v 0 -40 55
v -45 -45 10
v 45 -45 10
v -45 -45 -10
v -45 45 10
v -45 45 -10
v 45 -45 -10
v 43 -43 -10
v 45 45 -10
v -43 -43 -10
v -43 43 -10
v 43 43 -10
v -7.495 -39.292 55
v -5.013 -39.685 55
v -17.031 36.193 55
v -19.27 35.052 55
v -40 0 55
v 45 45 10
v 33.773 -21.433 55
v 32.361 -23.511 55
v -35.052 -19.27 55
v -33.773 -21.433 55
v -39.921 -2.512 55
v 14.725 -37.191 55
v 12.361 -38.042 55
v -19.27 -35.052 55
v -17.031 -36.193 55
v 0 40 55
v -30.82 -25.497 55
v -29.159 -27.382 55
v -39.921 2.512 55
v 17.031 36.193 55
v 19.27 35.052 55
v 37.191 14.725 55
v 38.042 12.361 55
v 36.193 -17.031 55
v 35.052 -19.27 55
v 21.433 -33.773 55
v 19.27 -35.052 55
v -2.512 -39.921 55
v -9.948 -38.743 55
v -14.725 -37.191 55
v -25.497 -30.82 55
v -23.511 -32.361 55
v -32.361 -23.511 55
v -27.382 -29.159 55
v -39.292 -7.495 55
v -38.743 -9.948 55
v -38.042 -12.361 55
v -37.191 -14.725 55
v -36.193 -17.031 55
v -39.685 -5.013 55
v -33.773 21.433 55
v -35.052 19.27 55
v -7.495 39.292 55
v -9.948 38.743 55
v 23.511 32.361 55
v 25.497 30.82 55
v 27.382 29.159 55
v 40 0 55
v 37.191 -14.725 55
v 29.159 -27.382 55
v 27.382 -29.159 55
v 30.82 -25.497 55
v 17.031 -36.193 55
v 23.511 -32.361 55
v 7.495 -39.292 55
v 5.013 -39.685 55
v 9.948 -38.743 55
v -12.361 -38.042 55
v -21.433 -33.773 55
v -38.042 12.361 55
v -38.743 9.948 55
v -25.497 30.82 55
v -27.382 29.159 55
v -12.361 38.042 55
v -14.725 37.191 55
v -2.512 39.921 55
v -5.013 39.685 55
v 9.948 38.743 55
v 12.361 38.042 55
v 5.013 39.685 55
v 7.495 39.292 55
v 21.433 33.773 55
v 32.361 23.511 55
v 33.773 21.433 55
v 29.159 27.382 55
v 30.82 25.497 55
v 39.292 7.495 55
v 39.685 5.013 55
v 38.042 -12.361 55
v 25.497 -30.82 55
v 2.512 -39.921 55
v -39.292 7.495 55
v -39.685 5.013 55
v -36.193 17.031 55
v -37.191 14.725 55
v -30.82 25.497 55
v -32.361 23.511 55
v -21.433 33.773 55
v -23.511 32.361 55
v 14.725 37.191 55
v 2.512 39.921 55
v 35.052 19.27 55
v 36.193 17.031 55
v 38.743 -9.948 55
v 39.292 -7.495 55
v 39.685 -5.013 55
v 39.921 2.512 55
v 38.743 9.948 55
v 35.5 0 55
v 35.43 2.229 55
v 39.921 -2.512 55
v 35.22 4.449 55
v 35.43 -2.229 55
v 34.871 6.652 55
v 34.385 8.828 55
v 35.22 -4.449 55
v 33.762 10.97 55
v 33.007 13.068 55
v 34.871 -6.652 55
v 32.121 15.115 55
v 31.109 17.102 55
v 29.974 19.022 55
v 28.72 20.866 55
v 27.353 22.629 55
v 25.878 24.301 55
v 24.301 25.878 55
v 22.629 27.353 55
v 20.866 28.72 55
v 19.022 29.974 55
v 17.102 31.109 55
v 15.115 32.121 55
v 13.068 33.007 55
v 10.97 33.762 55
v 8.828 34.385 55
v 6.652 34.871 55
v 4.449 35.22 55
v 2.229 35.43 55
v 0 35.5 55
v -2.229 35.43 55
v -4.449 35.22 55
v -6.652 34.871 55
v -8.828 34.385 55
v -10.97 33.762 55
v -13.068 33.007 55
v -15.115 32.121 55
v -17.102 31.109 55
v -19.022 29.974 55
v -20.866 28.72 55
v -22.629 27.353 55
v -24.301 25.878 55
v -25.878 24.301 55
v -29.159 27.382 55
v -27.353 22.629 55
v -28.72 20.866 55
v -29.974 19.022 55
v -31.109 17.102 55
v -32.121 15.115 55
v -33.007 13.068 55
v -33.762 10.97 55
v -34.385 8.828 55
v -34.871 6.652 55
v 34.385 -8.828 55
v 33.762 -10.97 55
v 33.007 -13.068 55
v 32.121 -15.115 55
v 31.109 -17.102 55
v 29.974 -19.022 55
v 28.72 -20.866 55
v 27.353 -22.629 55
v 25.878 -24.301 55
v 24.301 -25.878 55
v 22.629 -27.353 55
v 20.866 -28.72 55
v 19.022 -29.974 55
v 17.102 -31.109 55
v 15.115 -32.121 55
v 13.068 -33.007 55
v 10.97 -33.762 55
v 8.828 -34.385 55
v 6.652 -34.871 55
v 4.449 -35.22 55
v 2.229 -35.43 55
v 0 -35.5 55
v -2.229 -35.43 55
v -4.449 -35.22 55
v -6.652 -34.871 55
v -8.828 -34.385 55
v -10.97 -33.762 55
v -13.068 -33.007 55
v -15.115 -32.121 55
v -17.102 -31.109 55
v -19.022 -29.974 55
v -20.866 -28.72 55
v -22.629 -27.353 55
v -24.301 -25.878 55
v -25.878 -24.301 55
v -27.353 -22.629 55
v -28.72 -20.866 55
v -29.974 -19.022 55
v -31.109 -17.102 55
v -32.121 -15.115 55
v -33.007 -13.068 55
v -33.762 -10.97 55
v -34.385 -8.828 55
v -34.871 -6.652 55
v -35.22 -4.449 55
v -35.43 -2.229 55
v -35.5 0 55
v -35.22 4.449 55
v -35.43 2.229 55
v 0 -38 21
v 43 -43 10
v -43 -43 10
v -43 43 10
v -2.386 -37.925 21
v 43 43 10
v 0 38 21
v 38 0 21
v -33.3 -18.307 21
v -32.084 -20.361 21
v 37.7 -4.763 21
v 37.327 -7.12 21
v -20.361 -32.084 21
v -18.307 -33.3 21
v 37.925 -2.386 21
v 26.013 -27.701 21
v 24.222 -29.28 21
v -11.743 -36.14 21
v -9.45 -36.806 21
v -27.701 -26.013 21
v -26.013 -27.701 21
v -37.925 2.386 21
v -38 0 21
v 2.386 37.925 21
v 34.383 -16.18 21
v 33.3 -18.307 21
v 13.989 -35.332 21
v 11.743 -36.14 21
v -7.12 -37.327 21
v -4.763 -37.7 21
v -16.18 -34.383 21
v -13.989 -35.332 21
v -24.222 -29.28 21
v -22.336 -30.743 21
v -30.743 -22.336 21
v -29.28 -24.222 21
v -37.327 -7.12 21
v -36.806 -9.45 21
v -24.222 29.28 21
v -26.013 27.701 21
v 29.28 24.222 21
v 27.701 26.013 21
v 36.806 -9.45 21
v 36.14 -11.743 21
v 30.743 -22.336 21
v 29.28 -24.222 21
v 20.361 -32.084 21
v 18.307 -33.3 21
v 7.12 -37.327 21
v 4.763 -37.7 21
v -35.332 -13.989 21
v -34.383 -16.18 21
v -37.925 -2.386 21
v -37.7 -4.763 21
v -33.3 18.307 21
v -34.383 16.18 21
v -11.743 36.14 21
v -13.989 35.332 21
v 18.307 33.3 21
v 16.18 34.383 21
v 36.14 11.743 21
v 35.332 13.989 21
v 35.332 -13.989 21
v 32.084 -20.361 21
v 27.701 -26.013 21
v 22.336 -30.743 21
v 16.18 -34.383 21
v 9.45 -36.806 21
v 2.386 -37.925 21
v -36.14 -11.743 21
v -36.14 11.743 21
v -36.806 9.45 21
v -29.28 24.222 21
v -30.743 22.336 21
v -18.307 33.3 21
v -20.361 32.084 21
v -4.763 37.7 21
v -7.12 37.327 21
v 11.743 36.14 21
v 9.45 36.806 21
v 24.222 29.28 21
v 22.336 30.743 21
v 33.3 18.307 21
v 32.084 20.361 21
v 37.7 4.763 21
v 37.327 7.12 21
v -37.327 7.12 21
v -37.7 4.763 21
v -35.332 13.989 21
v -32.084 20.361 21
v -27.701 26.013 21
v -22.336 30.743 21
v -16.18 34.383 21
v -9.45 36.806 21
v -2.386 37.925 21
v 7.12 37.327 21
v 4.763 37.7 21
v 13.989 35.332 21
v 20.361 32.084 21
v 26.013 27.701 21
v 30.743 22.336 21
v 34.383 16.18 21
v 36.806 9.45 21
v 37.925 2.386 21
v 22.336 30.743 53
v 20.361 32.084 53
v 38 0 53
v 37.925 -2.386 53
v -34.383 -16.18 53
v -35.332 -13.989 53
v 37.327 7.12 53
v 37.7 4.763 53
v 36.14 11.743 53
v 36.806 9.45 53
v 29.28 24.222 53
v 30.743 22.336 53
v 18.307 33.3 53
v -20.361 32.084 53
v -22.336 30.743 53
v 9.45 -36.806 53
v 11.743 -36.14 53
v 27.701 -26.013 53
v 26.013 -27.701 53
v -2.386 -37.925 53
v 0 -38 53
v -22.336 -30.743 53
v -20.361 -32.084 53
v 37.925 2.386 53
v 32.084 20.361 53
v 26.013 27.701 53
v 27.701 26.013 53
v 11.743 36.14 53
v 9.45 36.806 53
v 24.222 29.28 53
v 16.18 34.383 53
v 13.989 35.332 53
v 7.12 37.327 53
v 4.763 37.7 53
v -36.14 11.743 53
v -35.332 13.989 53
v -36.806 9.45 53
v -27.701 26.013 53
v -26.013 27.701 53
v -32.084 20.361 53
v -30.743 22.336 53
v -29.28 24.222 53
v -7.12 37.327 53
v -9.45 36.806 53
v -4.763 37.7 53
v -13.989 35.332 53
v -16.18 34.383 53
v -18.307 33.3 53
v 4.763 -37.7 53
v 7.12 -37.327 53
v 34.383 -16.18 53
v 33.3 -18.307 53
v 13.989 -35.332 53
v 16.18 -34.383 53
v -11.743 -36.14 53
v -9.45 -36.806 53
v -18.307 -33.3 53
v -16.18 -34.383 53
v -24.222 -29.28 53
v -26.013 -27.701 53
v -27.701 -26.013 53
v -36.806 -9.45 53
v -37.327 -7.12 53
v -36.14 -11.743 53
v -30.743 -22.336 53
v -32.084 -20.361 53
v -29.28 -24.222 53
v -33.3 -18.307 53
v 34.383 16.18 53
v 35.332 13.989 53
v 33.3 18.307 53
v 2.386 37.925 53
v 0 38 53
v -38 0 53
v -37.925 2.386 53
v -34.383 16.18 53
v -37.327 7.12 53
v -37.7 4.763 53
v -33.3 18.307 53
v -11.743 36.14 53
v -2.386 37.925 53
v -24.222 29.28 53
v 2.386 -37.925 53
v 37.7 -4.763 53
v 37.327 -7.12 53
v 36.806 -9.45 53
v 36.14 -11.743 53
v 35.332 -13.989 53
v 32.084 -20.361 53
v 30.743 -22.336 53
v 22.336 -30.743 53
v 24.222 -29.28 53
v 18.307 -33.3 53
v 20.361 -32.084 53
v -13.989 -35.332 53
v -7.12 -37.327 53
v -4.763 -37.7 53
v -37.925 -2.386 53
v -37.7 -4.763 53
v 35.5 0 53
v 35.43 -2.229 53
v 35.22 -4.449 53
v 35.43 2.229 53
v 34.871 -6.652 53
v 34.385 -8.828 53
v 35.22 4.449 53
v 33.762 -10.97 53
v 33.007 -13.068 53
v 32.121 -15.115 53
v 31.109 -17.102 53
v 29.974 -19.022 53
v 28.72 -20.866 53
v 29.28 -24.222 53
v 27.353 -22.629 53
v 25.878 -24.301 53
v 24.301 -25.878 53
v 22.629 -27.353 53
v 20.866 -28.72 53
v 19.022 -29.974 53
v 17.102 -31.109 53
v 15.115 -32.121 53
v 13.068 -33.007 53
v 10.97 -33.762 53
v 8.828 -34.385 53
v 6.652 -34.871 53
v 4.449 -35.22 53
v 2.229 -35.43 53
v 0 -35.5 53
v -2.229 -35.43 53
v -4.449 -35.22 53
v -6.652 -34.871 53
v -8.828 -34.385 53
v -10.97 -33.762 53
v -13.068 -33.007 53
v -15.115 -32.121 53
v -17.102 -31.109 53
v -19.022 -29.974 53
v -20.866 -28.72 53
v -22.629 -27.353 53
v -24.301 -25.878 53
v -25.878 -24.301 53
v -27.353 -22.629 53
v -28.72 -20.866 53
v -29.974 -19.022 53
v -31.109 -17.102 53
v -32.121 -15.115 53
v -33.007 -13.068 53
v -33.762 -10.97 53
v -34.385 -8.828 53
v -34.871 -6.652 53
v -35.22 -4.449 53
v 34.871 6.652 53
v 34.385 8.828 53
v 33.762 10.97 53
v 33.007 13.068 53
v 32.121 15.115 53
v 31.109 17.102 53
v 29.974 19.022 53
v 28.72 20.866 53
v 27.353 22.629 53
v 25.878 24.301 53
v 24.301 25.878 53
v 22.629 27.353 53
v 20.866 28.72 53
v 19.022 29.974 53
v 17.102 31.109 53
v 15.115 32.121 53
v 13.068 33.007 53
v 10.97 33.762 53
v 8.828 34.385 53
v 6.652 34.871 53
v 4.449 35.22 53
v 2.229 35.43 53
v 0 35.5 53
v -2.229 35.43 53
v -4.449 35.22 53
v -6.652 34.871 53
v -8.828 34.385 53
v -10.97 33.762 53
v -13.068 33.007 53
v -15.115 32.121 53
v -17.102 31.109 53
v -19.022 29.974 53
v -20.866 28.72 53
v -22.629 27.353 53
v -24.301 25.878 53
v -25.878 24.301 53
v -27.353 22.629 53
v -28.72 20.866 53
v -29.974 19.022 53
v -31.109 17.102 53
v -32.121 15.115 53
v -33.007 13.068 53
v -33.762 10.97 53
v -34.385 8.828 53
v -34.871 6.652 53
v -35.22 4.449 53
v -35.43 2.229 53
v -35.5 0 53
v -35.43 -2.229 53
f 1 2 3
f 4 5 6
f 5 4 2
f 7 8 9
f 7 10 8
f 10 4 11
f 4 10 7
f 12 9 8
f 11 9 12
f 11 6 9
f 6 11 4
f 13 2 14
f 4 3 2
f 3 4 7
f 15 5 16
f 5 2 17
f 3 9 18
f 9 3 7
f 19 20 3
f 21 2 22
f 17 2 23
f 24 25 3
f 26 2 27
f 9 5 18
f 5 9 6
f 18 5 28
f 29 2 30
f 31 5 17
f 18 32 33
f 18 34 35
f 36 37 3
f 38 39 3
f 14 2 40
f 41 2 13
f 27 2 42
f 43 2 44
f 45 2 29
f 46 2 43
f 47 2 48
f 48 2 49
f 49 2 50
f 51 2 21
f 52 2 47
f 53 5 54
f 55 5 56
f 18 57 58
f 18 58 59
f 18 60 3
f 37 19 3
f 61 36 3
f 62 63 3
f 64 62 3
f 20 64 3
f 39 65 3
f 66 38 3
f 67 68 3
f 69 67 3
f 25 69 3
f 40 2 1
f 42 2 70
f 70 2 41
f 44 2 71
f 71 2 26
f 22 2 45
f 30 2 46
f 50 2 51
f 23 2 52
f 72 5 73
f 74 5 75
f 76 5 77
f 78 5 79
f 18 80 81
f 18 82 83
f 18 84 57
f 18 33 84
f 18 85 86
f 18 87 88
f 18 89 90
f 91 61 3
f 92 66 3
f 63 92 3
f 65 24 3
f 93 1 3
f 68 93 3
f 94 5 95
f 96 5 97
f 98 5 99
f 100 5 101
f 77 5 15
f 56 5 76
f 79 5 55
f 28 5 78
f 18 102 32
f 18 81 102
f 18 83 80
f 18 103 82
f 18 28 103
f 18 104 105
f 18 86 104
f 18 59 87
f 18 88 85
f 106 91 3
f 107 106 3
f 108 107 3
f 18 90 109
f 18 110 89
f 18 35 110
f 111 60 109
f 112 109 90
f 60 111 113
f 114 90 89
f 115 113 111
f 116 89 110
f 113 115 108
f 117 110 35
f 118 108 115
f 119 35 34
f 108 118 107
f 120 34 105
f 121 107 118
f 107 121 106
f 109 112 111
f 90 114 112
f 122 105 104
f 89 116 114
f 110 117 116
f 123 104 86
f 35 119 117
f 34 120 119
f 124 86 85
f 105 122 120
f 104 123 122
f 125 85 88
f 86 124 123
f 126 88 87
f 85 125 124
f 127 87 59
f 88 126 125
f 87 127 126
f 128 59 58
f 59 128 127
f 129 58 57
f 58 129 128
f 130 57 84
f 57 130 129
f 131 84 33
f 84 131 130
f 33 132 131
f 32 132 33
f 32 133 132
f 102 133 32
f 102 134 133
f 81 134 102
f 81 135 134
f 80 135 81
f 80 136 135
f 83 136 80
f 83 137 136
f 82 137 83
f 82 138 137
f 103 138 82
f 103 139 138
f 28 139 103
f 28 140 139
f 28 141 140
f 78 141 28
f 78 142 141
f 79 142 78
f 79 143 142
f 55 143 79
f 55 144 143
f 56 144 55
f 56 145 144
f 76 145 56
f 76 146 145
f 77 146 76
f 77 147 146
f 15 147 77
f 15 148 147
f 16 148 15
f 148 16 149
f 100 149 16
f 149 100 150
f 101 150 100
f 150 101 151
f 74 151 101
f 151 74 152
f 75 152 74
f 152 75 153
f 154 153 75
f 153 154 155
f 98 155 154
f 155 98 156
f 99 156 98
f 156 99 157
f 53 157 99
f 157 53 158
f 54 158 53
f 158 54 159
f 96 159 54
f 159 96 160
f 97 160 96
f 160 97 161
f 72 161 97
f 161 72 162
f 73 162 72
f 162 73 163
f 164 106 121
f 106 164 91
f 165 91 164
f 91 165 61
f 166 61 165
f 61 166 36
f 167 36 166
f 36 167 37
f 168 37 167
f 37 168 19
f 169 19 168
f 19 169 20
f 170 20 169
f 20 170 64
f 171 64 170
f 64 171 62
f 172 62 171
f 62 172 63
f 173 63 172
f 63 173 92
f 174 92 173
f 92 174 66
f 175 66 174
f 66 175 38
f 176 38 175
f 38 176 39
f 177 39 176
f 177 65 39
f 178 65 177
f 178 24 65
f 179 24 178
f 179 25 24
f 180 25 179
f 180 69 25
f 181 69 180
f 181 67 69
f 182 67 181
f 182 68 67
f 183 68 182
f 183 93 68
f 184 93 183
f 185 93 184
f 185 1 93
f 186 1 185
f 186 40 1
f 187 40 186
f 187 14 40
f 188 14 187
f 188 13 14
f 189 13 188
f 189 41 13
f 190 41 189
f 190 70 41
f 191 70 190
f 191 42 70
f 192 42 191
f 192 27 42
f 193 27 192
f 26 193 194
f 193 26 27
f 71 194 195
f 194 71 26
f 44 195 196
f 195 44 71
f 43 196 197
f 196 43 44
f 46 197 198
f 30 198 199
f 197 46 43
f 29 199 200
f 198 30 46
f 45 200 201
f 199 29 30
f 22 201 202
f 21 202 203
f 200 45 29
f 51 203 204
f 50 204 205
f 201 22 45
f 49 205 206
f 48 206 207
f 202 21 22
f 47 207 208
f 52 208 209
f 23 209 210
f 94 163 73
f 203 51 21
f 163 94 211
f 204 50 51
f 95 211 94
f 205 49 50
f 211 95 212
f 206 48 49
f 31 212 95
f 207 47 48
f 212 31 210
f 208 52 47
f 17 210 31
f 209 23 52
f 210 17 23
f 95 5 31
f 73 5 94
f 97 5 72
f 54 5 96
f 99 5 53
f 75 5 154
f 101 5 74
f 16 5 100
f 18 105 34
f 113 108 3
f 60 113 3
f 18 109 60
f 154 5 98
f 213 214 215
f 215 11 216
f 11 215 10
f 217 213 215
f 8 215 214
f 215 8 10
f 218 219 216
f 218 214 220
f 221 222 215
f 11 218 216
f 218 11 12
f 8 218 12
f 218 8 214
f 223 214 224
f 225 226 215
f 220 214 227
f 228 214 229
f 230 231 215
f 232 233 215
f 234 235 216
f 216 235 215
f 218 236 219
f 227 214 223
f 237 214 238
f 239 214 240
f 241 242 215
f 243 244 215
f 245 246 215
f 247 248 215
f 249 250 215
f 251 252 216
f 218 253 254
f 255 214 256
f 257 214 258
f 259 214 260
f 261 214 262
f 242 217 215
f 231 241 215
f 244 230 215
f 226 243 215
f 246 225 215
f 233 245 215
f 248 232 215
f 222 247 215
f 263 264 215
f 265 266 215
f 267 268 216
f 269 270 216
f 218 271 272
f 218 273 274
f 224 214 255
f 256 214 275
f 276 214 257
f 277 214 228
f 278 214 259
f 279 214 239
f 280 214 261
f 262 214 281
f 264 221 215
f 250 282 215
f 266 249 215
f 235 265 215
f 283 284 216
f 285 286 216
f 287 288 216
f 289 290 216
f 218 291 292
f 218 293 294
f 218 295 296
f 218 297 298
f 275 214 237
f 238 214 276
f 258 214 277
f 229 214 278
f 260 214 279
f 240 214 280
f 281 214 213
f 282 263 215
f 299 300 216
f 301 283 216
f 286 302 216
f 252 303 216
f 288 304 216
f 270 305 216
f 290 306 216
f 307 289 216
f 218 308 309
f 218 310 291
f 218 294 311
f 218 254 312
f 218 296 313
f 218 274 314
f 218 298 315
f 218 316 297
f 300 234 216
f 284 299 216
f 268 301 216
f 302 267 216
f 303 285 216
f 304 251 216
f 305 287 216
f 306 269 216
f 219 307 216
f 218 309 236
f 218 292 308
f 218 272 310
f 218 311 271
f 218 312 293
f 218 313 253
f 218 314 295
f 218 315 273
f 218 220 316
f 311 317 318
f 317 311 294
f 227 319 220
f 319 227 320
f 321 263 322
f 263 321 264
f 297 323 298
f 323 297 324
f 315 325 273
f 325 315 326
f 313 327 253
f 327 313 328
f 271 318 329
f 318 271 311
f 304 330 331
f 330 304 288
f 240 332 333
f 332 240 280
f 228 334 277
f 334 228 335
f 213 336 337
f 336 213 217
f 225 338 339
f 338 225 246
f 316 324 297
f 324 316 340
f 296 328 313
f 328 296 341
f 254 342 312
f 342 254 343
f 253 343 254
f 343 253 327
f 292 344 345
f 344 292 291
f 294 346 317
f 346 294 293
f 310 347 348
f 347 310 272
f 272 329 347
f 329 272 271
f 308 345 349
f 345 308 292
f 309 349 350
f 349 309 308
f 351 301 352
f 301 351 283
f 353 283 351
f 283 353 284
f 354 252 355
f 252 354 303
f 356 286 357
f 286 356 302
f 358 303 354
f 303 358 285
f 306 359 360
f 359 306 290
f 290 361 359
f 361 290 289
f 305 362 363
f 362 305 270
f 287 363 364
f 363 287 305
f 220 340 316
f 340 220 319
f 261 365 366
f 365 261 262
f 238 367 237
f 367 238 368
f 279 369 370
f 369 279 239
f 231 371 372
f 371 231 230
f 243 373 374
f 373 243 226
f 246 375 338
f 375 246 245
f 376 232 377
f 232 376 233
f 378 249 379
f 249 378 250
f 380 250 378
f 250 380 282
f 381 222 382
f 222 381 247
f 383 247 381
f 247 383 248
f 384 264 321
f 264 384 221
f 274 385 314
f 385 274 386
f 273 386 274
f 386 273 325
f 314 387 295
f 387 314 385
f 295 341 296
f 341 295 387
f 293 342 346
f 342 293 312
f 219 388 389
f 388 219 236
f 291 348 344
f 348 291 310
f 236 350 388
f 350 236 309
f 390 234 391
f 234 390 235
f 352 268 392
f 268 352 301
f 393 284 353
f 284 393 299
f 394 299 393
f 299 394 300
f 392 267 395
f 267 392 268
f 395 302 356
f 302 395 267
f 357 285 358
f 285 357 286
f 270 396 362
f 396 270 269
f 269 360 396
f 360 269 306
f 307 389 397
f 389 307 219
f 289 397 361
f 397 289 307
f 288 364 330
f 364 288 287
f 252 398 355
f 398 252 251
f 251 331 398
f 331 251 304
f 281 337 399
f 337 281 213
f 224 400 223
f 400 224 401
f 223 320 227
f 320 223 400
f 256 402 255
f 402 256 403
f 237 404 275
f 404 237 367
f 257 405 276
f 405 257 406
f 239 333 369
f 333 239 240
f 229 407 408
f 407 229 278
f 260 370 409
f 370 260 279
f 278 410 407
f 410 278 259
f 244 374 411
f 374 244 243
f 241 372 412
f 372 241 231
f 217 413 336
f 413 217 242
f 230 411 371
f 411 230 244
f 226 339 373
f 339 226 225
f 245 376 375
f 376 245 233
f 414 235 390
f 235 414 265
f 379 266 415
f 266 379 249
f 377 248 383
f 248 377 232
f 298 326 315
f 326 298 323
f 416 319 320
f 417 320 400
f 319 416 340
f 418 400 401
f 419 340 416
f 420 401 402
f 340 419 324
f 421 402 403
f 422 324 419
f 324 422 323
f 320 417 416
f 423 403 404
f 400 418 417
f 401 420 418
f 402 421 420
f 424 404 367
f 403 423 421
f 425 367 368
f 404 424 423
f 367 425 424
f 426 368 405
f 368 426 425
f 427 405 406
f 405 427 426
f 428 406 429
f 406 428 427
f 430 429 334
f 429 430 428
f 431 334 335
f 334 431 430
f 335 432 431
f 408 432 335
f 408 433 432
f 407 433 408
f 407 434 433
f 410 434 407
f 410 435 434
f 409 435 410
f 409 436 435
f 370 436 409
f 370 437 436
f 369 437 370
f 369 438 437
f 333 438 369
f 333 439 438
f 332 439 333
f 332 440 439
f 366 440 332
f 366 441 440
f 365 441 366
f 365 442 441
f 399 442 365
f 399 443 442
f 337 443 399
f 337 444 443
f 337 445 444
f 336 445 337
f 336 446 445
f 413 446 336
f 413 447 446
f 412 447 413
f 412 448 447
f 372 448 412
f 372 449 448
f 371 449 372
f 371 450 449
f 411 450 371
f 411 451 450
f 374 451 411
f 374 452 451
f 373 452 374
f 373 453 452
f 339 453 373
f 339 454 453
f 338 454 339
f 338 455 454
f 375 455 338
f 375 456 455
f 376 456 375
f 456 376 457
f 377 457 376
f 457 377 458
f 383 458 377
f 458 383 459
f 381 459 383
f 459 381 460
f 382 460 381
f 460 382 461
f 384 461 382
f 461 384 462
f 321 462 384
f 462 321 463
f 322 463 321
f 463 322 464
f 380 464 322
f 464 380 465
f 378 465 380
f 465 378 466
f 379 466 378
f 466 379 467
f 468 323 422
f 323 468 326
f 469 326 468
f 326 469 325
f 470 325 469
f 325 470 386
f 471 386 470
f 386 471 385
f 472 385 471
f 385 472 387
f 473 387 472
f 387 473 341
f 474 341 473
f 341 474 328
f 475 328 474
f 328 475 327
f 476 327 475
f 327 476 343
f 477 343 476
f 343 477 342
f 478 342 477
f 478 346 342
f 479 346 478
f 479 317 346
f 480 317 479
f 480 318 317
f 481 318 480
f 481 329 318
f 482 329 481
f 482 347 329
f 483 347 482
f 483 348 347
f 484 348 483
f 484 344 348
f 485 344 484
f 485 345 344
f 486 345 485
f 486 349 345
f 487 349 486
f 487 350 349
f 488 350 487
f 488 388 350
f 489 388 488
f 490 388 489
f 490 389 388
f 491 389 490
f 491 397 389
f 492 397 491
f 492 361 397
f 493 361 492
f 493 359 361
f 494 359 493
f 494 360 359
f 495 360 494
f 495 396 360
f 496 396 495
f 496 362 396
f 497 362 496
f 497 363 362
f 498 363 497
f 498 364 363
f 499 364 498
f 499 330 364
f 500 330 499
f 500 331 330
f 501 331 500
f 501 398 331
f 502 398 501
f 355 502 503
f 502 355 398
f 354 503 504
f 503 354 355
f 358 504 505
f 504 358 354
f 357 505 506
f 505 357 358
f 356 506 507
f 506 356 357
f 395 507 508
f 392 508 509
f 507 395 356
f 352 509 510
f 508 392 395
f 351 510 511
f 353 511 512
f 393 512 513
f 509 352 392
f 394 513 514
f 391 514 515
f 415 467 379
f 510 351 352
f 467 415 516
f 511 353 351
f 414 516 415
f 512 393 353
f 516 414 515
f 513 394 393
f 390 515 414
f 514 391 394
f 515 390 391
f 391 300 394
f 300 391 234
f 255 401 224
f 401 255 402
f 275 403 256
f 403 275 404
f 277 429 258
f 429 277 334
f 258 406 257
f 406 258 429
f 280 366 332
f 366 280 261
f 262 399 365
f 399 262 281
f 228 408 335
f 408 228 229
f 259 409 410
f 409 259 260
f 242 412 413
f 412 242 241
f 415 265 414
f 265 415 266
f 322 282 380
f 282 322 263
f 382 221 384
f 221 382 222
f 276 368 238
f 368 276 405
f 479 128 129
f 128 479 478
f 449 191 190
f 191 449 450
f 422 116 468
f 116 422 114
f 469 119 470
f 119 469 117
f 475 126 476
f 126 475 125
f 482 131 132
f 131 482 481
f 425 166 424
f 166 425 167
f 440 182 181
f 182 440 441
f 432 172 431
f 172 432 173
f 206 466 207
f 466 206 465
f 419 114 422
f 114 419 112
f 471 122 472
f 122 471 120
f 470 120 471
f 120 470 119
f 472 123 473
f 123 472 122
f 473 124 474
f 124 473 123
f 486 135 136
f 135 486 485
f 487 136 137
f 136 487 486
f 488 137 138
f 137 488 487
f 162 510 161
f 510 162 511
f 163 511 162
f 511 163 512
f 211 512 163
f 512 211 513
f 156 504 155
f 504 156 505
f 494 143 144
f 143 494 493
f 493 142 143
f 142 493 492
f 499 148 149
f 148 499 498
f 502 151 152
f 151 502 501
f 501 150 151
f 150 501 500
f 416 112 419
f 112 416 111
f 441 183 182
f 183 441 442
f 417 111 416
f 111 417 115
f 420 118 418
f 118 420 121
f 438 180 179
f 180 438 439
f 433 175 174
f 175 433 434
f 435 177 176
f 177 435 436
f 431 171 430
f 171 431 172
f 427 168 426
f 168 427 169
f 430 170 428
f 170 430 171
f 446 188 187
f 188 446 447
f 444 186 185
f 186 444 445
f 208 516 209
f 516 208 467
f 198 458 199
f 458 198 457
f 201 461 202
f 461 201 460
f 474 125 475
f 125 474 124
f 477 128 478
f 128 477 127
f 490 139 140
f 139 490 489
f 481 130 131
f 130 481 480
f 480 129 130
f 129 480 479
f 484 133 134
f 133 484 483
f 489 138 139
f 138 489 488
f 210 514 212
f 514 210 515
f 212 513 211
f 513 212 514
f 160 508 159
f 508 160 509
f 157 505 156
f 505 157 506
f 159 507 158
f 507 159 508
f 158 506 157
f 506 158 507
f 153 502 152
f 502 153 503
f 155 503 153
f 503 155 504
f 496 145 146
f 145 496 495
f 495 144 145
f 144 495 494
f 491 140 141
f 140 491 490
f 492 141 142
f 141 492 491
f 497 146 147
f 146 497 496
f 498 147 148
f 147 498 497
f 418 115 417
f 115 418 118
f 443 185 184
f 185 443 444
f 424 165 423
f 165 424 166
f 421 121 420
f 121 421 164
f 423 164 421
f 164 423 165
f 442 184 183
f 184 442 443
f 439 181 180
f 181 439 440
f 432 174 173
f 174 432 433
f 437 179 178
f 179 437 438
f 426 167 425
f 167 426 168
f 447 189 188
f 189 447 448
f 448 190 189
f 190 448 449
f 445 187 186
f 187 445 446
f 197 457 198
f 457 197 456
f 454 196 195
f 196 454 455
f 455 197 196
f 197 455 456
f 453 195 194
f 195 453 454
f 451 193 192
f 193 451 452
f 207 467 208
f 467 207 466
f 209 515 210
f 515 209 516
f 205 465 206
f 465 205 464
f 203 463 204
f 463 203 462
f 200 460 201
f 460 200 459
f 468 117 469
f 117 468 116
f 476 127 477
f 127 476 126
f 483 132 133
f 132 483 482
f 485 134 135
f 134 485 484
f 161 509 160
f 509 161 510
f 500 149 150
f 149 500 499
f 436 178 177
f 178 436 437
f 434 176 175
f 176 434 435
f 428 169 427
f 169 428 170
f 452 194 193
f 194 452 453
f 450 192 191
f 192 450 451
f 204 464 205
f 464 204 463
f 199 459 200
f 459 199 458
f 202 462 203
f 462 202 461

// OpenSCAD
fan_box_size = 86;
fan_box_height = 20;

filter_d = 76;
filter_h = 33;

difference() {
    hull() {
        cube([fan_box_size+4,fan_box_size+4,fan_box_height], center=true);
        translate([0,0,fan_box_height])
        cylinder($fn=100, d=filter_d+4, h=filter_h+2);
    }
    
    hull() {
        cube([fan_box_size,fan_box_size,fan_box_height], center=true);
        translate([0,0,fan_box_height])
        cylinder($fn=100, d=filter_d, h=1);
    }

    translate([0,0,fan_box_height])
    cylinder($fn=100, d=filter_d, h=filter_h);
    
    translate([0,0,fan_box_height+filter_h])
    cylinder($fn=100, d=filter_d-5, h=2);
}
